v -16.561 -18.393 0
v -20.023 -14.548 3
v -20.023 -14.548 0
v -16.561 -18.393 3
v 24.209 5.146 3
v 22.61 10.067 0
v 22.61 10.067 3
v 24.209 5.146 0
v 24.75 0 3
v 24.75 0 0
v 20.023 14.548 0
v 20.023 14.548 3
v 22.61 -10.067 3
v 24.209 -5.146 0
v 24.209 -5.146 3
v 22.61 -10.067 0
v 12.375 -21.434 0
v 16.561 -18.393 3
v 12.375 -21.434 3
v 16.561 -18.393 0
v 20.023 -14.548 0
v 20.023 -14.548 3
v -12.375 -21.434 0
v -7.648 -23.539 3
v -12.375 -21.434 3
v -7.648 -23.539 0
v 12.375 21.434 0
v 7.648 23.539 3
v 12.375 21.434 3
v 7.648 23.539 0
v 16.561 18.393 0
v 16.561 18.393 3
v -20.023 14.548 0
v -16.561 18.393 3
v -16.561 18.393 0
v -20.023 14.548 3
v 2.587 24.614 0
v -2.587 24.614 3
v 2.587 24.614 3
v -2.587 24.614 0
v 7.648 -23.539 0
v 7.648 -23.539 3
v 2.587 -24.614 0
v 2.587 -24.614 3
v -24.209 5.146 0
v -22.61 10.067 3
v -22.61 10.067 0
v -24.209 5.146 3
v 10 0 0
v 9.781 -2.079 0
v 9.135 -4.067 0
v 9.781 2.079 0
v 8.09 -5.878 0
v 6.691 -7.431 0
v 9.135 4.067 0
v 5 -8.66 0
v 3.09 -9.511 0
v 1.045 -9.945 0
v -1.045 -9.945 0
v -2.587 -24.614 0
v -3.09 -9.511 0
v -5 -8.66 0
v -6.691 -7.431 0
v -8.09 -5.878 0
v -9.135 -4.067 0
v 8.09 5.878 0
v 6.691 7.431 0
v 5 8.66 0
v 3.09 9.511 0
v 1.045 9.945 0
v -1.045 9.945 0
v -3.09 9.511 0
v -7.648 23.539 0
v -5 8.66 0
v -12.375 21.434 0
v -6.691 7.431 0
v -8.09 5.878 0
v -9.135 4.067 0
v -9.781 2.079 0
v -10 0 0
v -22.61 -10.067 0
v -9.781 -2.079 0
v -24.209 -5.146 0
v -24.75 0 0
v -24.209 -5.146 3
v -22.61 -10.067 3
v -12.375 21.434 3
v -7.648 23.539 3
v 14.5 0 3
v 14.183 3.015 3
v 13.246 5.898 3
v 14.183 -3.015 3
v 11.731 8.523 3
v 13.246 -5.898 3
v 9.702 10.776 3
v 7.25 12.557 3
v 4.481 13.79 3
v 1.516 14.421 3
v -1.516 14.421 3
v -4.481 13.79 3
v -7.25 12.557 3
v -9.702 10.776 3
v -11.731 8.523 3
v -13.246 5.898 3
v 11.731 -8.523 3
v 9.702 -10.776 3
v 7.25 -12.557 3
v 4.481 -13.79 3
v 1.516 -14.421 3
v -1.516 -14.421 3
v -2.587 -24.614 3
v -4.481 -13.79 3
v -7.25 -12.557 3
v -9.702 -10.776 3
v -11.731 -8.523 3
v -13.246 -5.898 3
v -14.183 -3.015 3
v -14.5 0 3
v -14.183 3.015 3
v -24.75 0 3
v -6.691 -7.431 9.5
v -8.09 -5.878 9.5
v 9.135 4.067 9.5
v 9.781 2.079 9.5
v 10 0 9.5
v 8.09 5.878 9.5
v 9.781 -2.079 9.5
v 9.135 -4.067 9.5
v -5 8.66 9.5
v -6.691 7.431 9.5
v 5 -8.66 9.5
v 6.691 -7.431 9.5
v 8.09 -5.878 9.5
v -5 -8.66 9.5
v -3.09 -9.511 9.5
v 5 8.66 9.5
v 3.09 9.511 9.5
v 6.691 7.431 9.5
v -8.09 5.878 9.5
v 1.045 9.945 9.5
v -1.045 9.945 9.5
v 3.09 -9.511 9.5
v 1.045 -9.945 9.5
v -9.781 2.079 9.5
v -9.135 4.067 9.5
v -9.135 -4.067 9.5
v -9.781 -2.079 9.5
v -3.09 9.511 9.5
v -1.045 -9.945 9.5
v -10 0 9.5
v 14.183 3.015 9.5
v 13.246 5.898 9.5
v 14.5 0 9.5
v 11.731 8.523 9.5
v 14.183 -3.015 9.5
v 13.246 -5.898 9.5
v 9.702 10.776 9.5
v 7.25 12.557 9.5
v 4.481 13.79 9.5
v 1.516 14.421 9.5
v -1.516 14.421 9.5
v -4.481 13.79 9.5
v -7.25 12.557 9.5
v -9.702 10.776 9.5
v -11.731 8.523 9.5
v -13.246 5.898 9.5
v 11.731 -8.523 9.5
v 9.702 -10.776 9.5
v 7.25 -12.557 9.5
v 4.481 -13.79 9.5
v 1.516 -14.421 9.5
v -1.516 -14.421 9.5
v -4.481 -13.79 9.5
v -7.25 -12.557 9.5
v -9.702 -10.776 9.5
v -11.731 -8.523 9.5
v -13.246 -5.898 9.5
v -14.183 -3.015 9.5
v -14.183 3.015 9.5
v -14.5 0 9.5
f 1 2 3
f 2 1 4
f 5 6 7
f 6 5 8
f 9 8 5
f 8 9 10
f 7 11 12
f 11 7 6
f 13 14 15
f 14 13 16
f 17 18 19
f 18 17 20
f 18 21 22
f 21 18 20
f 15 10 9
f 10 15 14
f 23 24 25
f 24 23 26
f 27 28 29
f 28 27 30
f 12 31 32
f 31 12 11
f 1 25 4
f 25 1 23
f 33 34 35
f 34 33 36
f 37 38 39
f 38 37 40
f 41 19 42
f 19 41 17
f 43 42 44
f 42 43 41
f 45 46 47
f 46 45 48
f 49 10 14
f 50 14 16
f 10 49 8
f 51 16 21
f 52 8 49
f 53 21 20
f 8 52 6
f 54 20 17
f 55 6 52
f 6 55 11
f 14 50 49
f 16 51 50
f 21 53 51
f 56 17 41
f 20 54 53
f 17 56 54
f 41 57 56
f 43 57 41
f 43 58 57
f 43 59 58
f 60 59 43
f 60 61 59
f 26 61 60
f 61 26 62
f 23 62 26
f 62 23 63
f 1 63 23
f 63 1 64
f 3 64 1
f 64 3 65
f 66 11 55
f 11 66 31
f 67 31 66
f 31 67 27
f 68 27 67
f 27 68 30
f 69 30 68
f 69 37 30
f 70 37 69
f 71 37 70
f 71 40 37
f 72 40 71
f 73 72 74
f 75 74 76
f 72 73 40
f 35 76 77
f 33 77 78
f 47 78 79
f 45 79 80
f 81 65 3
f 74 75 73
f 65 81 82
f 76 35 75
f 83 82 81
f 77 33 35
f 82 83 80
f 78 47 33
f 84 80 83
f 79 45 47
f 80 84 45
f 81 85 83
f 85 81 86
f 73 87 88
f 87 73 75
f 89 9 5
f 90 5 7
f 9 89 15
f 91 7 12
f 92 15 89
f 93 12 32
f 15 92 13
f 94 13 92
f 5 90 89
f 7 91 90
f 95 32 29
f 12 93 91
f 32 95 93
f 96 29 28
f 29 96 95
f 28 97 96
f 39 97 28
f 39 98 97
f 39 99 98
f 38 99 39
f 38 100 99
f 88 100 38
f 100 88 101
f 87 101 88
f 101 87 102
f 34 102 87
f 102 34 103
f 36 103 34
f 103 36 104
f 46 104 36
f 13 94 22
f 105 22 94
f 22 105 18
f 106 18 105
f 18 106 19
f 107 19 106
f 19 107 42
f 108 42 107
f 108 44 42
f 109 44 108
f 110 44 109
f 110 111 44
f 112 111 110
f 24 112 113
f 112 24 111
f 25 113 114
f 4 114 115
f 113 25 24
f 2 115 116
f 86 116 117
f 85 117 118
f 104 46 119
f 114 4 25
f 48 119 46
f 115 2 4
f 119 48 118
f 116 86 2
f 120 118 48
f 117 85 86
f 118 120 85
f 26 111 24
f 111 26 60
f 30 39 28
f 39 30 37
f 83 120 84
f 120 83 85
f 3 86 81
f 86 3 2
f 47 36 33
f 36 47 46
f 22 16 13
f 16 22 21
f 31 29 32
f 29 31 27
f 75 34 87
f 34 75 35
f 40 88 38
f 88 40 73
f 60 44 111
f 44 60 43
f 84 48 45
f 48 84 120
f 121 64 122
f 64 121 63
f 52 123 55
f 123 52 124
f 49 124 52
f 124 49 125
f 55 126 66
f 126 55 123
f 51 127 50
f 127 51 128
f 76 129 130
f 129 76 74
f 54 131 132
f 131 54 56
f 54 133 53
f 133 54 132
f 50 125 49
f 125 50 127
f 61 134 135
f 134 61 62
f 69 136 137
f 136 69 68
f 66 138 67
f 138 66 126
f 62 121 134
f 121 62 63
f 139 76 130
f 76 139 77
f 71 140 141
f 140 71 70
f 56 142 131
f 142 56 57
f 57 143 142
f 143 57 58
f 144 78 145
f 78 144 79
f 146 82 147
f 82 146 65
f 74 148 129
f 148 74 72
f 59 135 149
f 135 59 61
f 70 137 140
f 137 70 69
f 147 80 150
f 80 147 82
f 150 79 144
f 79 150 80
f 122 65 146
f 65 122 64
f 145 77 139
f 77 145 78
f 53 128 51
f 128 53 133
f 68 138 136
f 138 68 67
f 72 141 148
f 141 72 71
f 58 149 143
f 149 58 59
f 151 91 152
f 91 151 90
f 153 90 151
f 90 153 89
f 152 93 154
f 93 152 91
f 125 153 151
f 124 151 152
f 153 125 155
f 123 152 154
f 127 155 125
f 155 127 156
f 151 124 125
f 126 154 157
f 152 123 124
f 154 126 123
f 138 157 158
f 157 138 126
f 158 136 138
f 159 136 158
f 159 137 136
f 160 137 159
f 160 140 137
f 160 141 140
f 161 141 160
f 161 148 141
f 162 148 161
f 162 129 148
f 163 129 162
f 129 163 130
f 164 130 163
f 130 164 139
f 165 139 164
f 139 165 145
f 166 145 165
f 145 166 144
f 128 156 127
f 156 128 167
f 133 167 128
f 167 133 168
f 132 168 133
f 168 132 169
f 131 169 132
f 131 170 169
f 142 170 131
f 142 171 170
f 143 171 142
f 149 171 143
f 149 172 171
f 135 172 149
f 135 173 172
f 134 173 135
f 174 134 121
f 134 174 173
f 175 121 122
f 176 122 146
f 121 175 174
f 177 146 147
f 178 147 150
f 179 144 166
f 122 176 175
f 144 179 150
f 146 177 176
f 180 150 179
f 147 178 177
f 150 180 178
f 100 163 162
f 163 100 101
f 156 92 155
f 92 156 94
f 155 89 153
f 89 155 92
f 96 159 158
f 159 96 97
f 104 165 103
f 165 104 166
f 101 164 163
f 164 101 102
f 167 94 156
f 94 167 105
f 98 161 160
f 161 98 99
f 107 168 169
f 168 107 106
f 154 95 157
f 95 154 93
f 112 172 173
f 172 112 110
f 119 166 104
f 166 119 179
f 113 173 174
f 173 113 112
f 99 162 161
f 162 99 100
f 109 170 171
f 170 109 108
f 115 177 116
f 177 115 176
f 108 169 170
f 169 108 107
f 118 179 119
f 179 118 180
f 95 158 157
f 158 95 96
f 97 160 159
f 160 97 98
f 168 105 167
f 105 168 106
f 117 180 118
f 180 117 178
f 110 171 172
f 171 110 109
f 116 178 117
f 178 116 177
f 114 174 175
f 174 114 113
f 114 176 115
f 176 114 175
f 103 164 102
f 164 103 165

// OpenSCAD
translate([0,0,3]) {
    // Your ring code here
    difference() {
        cylinder(h=6.5, d=29);
        cylinder(h=6.5, d=20);
    }
}




translate([0,0,0]) {
    // Your ring code here
    difference() {
        cylinder(h=3, d=49.5);
        cylinder(h=3, d=20);
    }
}
